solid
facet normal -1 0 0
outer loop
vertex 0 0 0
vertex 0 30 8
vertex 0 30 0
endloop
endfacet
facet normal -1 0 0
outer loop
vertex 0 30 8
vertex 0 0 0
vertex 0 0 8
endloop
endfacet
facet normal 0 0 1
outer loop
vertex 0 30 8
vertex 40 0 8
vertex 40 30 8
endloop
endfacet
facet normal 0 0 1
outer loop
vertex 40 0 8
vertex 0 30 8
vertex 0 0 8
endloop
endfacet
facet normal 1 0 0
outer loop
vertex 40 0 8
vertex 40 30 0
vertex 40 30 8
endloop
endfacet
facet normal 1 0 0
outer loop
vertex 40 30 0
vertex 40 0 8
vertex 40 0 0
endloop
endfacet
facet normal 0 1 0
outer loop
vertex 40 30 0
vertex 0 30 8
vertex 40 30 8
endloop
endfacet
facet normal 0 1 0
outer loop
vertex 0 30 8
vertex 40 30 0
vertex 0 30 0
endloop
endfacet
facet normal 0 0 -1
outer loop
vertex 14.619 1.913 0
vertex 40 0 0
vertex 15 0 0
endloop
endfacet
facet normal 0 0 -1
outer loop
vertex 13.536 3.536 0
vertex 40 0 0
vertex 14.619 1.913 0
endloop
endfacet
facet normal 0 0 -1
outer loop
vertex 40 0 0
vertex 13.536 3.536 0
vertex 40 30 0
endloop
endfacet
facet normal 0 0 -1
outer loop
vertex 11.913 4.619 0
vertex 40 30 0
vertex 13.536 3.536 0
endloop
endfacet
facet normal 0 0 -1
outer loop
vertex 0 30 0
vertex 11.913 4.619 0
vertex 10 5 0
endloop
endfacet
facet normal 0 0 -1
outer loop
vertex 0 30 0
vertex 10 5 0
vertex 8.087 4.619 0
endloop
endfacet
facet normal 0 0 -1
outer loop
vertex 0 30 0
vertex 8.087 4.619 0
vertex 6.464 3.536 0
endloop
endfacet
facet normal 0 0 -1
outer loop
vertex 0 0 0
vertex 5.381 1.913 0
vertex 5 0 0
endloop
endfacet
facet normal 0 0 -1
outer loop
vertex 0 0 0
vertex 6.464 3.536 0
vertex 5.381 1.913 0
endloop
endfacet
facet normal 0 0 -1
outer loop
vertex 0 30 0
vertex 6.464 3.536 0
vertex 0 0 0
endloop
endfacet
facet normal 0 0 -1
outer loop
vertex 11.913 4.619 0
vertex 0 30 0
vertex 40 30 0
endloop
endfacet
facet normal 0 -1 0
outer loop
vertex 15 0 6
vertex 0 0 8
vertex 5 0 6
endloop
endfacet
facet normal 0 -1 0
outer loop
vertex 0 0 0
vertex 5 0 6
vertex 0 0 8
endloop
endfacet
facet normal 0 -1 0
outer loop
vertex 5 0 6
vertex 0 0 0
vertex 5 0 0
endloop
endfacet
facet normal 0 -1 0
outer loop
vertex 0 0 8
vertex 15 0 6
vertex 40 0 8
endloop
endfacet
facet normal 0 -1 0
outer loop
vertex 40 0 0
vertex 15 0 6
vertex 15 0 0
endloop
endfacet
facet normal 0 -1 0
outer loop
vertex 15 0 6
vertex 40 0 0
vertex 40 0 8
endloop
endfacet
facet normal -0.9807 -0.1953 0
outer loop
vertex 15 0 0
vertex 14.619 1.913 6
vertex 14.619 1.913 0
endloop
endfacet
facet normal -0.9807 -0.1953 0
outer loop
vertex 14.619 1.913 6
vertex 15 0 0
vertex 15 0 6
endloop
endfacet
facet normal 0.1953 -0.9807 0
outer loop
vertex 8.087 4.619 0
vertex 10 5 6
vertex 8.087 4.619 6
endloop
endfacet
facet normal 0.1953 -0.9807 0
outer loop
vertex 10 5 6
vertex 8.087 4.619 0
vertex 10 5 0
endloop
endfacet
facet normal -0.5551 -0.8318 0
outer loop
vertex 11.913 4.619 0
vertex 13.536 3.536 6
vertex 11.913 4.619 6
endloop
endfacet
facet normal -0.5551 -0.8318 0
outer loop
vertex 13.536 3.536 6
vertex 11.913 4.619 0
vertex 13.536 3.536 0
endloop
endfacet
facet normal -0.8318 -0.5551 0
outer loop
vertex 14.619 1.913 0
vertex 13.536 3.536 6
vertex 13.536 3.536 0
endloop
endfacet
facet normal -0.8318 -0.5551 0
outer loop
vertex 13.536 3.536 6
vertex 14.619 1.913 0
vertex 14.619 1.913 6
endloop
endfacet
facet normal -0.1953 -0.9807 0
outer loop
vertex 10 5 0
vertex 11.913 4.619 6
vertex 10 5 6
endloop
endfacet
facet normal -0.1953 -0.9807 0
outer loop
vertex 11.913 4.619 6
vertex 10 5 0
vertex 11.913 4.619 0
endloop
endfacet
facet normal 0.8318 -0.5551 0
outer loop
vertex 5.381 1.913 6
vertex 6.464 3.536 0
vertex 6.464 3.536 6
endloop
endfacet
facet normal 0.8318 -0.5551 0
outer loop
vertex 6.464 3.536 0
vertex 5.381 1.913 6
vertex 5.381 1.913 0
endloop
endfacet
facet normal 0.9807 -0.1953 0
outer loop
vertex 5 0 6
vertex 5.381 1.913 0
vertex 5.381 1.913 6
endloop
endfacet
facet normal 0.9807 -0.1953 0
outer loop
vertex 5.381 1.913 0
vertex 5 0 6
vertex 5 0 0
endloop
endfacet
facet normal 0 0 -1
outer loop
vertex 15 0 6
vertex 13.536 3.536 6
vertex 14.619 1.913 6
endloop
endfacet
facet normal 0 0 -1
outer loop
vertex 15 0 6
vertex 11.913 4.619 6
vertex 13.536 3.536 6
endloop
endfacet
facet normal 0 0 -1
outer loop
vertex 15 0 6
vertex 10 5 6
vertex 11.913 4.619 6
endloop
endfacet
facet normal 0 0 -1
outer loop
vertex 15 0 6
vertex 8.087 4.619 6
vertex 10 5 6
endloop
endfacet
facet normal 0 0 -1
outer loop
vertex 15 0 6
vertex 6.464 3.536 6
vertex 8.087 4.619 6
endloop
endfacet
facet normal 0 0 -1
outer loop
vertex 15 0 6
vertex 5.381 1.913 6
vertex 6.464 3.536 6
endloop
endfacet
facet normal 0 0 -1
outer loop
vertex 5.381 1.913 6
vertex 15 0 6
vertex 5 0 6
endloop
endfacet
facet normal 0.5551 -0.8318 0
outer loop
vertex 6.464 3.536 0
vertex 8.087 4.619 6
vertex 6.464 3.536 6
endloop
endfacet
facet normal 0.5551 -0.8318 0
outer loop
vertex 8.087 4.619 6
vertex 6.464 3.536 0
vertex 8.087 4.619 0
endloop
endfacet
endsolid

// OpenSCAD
module rectangular_plate(length, width, thickness) {
    difference() {
        cube([length, width, thickness]);
        translate([length/4, 0, -thickness/2]) cylinder(h=10, r=5);
    }
}

rectangular_plate(40, 30, 8);
